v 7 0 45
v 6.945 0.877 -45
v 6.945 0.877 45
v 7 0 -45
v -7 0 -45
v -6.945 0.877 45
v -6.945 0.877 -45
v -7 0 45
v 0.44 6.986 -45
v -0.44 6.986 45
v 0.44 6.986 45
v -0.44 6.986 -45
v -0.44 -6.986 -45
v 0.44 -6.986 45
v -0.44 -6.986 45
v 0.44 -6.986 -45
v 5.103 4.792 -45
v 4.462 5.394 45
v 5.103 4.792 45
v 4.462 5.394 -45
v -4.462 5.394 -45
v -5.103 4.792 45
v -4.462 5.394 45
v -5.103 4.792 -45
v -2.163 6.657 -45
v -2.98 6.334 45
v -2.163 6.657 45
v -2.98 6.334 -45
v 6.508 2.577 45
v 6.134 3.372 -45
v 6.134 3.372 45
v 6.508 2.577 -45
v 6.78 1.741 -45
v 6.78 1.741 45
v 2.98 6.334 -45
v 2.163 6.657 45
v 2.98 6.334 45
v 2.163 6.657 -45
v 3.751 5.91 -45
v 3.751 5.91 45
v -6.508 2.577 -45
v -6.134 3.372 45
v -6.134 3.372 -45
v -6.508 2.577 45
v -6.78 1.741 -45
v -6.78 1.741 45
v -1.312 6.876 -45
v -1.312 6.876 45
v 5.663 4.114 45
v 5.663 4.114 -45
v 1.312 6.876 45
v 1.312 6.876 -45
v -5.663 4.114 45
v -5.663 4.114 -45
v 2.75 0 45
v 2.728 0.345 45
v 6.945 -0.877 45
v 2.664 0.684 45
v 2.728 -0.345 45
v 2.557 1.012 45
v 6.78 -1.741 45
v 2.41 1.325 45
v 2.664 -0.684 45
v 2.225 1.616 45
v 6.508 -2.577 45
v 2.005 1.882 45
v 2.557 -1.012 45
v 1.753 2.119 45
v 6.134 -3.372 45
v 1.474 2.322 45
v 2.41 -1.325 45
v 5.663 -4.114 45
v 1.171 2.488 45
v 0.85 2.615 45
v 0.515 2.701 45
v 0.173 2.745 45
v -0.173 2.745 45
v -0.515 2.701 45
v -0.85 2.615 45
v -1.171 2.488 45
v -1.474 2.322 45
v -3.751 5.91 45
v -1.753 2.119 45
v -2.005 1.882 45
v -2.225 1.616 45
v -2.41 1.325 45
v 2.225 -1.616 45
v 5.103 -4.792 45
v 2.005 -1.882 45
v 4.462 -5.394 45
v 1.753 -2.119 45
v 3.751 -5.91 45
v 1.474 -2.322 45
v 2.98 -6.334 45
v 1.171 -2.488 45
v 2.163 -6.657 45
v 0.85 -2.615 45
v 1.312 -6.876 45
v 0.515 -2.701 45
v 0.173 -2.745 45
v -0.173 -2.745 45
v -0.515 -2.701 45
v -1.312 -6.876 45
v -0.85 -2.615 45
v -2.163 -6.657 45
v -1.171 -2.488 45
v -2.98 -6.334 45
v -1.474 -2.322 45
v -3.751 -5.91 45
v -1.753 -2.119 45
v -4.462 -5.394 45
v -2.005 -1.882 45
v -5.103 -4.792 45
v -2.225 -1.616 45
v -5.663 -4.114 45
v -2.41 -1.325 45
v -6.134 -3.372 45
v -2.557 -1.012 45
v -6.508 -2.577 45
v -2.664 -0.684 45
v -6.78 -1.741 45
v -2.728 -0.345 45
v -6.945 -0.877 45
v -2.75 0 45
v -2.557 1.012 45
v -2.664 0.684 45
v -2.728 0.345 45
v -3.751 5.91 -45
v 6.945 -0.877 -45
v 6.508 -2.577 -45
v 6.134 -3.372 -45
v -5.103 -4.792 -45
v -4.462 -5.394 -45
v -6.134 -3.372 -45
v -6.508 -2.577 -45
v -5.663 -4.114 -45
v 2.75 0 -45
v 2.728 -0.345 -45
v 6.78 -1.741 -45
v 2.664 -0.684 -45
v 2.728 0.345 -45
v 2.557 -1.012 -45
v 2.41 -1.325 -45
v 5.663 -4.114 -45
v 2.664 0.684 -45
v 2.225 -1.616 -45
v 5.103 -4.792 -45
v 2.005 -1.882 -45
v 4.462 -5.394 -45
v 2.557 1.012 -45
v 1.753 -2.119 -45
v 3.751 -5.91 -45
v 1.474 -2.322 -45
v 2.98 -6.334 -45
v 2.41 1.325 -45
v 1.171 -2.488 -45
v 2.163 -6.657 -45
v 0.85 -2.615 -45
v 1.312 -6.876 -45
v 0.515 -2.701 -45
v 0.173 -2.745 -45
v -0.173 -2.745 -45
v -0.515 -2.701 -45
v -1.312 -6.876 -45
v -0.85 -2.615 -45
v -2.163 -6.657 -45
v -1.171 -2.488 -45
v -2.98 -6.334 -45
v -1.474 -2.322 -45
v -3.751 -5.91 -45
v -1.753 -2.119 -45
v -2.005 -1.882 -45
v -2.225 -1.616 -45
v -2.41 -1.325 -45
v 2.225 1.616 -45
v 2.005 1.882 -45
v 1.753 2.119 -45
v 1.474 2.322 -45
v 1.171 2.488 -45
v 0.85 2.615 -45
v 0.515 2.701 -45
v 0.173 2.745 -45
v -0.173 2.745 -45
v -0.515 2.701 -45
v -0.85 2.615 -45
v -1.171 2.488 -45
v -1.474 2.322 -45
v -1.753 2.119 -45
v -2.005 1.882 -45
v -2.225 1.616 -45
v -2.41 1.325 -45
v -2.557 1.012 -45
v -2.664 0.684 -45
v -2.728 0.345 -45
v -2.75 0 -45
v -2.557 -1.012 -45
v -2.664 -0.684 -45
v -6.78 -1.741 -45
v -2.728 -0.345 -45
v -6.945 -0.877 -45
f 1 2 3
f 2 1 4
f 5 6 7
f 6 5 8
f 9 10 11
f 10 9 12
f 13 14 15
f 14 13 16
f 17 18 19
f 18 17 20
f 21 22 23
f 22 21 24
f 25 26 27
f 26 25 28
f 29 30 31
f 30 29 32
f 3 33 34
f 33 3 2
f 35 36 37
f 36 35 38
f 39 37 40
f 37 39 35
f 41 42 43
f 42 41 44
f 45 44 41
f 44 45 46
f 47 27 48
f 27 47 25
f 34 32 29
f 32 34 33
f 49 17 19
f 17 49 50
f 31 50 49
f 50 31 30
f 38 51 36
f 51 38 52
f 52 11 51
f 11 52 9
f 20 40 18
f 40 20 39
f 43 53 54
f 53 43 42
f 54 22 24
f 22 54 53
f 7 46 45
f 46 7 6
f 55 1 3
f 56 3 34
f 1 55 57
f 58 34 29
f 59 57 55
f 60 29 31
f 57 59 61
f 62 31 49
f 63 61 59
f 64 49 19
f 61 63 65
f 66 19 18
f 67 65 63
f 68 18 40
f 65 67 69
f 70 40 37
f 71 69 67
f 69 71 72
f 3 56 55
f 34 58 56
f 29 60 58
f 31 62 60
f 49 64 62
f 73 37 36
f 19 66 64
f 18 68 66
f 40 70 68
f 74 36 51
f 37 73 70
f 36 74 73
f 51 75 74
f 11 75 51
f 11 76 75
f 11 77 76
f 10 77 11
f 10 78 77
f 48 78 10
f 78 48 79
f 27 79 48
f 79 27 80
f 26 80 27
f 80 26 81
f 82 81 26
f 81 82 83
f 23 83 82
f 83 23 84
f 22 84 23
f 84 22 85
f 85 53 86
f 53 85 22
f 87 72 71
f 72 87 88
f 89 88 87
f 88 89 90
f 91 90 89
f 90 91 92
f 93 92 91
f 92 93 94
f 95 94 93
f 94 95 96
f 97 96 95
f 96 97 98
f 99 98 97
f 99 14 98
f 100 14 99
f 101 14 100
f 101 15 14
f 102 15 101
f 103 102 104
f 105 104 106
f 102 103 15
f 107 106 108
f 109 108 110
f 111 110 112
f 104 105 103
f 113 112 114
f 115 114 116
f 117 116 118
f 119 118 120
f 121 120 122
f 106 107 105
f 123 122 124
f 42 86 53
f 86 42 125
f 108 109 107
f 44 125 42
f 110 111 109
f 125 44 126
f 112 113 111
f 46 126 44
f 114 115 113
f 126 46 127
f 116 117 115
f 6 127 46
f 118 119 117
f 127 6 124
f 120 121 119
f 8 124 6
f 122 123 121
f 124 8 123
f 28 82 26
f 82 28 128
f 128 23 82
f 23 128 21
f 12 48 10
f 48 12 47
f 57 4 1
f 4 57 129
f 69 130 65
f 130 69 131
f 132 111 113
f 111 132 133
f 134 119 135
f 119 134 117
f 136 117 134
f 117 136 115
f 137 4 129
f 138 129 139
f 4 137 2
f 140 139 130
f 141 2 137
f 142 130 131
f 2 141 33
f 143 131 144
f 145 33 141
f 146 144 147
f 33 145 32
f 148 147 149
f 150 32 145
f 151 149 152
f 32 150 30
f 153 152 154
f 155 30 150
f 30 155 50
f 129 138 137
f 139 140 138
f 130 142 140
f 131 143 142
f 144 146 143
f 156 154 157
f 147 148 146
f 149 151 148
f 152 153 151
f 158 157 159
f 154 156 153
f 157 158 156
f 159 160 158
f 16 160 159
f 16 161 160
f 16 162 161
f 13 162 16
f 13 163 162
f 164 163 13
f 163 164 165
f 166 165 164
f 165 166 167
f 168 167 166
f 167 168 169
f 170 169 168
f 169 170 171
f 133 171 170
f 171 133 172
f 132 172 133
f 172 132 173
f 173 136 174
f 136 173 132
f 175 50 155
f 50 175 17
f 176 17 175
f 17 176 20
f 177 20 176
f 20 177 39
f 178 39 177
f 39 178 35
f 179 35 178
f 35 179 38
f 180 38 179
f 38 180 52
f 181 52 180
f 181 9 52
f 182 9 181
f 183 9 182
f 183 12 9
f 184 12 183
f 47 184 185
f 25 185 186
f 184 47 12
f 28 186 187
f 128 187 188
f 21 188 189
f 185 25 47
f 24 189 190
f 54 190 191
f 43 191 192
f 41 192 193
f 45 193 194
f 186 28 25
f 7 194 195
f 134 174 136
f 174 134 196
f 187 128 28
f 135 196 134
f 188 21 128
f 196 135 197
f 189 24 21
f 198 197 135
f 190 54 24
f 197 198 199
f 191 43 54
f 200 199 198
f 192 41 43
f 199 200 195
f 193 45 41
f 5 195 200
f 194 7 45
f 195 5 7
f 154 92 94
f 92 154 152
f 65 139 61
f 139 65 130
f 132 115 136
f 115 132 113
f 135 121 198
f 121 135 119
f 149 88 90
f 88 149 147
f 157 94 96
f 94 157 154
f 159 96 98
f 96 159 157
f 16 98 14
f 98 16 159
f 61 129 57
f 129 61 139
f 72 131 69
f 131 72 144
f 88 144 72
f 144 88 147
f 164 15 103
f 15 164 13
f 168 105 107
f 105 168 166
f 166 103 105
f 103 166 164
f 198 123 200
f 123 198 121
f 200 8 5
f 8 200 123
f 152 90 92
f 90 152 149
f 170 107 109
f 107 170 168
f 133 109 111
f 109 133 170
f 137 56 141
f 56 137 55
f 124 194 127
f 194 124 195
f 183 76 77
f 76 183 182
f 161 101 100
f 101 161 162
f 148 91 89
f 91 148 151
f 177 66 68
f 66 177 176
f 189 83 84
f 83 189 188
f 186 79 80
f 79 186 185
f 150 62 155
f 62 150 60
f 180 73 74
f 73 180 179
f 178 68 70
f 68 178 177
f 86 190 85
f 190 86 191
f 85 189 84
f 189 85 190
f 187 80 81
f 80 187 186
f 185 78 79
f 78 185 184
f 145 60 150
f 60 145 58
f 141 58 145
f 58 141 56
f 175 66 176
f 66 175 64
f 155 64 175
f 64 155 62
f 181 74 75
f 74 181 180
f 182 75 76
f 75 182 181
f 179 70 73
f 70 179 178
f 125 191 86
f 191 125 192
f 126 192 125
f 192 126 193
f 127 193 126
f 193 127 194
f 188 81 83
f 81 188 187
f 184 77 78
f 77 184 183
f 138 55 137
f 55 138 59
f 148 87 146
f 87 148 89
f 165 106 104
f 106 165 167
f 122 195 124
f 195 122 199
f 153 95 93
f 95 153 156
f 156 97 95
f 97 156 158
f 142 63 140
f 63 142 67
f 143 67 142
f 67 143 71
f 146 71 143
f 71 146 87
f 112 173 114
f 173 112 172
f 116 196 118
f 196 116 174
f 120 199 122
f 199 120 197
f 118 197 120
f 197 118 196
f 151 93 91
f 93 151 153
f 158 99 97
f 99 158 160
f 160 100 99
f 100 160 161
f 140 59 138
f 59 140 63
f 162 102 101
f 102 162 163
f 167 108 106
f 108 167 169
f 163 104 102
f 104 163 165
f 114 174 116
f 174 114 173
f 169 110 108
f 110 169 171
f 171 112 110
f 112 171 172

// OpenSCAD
$fn = 50;


difference() {
	union() {
		translate(v = [0, 0, -45.0000000000]) {
			cylinder(h = 90, r = 7.0000000000);
		}
	}
	union() {
		translate(v = [0, 0, -100.0000000000]) {
			cylinder(h = 200, r = 2.7500000000);
		}
	}
}
